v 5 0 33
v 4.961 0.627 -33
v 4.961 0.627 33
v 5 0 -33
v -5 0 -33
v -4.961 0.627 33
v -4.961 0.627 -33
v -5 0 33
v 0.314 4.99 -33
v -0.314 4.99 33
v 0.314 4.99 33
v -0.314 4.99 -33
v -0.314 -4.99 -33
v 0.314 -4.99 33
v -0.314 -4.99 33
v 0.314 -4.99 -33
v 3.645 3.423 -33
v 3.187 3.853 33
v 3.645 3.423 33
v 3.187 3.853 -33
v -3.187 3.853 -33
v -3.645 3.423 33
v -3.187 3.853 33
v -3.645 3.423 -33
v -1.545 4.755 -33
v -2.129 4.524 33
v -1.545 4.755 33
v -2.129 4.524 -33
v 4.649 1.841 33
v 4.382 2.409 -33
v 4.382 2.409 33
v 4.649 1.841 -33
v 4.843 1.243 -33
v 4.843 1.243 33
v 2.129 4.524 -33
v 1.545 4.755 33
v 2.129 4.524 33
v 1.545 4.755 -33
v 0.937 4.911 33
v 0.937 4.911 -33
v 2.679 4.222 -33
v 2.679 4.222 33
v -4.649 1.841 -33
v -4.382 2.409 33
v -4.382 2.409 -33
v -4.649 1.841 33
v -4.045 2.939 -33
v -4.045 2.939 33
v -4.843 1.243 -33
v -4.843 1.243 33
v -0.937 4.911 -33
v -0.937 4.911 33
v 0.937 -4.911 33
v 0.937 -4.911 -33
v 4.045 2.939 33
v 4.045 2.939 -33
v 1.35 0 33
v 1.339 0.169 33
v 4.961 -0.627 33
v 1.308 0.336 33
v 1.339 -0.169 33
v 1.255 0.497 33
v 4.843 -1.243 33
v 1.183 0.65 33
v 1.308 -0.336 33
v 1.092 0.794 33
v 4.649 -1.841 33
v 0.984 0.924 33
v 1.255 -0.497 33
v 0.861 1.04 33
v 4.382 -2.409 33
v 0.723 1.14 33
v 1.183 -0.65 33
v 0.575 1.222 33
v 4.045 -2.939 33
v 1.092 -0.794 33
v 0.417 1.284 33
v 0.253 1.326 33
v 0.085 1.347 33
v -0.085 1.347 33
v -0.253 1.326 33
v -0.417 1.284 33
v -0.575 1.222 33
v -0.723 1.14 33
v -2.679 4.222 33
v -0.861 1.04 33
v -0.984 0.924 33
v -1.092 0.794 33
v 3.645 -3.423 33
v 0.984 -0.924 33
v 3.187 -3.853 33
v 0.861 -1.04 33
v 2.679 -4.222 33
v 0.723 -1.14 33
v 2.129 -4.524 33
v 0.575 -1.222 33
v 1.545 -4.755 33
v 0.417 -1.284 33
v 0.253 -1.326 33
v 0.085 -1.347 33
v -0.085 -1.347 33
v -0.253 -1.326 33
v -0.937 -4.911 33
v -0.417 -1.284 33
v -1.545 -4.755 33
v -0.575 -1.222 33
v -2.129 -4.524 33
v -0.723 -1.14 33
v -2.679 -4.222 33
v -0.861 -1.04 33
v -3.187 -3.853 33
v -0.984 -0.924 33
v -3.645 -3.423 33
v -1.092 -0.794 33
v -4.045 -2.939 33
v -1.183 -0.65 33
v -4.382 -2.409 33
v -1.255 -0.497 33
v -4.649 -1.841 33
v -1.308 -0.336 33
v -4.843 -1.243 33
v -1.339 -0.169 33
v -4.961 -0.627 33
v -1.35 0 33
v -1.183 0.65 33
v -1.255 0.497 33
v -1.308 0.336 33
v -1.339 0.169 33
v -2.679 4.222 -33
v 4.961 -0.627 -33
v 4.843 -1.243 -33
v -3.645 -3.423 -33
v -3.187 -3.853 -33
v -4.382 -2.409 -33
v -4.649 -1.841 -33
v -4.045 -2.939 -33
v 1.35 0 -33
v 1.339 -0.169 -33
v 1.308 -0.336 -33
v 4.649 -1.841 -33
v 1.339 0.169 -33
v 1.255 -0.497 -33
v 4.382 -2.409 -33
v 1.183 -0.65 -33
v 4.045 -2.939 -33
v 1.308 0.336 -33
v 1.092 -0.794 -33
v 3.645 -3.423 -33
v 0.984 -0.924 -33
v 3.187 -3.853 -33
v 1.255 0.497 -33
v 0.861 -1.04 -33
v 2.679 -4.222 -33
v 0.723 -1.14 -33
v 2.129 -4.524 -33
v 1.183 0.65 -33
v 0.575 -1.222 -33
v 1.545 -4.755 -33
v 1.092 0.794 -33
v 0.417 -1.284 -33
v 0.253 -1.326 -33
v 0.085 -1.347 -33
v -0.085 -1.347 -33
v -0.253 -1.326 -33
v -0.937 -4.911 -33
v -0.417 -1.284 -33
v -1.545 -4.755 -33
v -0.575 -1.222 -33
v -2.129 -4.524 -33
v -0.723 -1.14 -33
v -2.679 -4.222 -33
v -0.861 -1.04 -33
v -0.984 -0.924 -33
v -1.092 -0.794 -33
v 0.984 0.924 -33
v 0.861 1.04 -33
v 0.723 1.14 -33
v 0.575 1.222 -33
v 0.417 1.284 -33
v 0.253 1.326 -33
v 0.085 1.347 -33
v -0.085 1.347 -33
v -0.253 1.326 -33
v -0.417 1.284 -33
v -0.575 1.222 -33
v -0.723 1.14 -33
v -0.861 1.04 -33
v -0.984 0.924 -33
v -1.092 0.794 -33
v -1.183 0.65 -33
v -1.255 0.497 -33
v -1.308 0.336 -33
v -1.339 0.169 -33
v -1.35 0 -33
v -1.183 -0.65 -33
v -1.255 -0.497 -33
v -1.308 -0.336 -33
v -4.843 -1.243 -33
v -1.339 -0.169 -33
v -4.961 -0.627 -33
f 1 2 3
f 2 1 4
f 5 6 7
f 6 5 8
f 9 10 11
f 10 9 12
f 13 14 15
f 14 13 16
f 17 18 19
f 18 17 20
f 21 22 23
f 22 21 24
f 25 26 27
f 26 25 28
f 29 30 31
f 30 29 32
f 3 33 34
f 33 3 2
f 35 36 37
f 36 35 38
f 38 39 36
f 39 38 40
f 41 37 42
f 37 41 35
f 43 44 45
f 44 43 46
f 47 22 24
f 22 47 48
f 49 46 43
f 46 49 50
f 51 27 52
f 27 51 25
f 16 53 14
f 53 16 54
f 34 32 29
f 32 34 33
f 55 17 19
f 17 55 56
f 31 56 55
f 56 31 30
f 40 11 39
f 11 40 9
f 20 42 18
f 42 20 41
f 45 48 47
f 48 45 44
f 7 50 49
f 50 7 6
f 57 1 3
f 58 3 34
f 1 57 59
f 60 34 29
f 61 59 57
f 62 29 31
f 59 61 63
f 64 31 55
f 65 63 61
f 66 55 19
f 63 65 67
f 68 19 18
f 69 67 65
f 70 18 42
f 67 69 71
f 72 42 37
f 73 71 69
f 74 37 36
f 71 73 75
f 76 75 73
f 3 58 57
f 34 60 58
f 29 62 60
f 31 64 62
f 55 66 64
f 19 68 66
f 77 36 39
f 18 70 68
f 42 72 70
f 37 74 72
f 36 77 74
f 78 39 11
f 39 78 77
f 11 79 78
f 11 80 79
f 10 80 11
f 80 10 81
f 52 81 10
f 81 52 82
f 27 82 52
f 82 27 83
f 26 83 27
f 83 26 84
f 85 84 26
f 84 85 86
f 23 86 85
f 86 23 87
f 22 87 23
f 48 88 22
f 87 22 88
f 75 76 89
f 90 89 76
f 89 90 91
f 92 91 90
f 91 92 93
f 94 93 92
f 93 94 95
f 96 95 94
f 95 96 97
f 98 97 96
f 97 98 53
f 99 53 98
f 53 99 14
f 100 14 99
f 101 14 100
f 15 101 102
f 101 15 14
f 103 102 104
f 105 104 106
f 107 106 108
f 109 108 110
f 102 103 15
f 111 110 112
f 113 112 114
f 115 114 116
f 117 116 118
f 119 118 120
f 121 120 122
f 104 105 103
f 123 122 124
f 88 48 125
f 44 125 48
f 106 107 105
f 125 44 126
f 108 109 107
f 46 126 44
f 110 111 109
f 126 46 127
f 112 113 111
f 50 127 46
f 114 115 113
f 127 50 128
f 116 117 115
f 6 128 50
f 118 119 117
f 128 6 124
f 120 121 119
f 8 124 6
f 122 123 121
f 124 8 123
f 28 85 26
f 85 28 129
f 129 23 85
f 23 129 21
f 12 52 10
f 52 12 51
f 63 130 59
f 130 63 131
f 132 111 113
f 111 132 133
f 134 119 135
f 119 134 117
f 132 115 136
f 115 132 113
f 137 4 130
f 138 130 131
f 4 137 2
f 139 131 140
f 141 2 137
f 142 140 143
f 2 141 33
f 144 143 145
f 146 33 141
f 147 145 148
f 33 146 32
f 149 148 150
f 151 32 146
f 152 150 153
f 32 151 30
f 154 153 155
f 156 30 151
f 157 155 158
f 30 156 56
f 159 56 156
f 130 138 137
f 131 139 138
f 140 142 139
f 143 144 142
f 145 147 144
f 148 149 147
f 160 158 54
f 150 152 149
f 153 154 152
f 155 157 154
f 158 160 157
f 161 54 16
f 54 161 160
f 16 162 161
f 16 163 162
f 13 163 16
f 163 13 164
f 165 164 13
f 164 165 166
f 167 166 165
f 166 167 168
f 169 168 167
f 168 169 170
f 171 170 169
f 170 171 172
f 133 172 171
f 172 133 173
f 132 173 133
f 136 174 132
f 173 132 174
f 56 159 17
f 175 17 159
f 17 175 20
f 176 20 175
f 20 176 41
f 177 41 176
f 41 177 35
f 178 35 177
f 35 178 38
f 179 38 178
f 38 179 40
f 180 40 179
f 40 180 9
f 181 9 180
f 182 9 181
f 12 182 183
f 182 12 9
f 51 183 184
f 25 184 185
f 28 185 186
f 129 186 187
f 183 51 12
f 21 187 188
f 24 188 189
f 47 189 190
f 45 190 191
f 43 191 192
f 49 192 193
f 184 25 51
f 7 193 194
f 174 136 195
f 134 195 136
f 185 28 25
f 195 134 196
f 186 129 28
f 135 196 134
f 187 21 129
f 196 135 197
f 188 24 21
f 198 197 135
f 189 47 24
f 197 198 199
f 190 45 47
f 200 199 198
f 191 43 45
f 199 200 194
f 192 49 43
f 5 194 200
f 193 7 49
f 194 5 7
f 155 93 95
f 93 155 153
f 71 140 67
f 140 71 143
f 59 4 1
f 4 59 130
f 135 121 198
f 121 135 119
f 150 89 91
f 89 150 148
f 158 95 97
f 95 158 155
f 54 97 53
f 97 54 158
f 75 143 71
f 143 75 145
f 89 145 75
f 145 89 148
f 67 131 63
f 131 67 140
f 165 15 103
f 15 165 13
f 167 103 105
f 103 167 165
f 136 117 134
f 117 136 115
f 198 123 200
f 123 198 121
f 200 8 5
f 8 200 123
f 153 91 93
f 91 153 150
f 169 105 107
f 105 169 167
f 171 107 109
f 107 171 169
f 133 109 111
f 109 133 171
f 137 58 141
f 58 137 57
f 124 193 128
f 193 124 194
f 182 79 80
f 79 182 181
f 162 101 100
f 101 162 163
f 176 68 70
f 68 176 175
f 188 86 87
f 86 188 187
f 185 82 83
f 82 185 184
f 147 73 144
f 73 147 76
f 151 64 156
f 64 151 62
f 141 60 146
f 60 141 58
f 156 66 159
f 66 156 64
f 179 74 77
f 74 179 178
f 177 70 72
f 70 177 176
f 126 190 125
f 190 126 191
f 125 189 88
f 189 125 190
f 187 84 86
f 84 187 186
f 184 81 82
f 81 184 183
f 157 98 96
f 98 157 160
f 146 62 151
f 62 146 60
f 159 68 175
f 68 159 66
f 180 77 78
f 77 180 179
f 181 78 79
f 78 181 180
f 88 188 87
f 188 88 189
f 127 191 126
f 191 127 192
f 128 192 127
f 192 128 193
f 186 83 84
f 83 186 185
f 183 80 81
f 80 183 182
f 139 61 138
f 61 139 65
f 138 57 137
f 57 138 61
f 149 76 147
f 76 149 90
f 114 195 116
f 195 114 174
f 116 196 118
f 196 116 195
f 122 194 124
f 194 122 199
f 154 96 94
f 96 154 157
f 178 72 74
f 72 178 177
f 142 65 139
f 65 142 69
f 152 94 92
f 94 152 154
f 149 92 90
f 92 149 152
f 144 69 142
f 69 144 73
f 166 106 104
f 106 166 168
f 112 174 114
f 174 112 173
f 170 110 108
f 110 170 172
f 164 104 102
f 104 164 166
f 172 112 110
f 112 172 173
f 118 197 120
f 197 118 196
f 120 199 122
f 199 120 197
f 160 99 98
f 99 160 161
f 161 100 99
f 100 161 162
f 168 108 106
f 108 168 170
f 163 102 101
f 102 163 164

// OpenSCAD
$fn = 50;


difference() {
	union() {
		translate(v = [0, 0, -33.0000000000]) {
			cylinder(h = 66, r = 5.0000000000);
		}
	}
	union() {
		translate(v = [0, 0, -100.0000000000]) {
			cylinder(h = 200, r = 1.3500000000);
		}
	}
}
